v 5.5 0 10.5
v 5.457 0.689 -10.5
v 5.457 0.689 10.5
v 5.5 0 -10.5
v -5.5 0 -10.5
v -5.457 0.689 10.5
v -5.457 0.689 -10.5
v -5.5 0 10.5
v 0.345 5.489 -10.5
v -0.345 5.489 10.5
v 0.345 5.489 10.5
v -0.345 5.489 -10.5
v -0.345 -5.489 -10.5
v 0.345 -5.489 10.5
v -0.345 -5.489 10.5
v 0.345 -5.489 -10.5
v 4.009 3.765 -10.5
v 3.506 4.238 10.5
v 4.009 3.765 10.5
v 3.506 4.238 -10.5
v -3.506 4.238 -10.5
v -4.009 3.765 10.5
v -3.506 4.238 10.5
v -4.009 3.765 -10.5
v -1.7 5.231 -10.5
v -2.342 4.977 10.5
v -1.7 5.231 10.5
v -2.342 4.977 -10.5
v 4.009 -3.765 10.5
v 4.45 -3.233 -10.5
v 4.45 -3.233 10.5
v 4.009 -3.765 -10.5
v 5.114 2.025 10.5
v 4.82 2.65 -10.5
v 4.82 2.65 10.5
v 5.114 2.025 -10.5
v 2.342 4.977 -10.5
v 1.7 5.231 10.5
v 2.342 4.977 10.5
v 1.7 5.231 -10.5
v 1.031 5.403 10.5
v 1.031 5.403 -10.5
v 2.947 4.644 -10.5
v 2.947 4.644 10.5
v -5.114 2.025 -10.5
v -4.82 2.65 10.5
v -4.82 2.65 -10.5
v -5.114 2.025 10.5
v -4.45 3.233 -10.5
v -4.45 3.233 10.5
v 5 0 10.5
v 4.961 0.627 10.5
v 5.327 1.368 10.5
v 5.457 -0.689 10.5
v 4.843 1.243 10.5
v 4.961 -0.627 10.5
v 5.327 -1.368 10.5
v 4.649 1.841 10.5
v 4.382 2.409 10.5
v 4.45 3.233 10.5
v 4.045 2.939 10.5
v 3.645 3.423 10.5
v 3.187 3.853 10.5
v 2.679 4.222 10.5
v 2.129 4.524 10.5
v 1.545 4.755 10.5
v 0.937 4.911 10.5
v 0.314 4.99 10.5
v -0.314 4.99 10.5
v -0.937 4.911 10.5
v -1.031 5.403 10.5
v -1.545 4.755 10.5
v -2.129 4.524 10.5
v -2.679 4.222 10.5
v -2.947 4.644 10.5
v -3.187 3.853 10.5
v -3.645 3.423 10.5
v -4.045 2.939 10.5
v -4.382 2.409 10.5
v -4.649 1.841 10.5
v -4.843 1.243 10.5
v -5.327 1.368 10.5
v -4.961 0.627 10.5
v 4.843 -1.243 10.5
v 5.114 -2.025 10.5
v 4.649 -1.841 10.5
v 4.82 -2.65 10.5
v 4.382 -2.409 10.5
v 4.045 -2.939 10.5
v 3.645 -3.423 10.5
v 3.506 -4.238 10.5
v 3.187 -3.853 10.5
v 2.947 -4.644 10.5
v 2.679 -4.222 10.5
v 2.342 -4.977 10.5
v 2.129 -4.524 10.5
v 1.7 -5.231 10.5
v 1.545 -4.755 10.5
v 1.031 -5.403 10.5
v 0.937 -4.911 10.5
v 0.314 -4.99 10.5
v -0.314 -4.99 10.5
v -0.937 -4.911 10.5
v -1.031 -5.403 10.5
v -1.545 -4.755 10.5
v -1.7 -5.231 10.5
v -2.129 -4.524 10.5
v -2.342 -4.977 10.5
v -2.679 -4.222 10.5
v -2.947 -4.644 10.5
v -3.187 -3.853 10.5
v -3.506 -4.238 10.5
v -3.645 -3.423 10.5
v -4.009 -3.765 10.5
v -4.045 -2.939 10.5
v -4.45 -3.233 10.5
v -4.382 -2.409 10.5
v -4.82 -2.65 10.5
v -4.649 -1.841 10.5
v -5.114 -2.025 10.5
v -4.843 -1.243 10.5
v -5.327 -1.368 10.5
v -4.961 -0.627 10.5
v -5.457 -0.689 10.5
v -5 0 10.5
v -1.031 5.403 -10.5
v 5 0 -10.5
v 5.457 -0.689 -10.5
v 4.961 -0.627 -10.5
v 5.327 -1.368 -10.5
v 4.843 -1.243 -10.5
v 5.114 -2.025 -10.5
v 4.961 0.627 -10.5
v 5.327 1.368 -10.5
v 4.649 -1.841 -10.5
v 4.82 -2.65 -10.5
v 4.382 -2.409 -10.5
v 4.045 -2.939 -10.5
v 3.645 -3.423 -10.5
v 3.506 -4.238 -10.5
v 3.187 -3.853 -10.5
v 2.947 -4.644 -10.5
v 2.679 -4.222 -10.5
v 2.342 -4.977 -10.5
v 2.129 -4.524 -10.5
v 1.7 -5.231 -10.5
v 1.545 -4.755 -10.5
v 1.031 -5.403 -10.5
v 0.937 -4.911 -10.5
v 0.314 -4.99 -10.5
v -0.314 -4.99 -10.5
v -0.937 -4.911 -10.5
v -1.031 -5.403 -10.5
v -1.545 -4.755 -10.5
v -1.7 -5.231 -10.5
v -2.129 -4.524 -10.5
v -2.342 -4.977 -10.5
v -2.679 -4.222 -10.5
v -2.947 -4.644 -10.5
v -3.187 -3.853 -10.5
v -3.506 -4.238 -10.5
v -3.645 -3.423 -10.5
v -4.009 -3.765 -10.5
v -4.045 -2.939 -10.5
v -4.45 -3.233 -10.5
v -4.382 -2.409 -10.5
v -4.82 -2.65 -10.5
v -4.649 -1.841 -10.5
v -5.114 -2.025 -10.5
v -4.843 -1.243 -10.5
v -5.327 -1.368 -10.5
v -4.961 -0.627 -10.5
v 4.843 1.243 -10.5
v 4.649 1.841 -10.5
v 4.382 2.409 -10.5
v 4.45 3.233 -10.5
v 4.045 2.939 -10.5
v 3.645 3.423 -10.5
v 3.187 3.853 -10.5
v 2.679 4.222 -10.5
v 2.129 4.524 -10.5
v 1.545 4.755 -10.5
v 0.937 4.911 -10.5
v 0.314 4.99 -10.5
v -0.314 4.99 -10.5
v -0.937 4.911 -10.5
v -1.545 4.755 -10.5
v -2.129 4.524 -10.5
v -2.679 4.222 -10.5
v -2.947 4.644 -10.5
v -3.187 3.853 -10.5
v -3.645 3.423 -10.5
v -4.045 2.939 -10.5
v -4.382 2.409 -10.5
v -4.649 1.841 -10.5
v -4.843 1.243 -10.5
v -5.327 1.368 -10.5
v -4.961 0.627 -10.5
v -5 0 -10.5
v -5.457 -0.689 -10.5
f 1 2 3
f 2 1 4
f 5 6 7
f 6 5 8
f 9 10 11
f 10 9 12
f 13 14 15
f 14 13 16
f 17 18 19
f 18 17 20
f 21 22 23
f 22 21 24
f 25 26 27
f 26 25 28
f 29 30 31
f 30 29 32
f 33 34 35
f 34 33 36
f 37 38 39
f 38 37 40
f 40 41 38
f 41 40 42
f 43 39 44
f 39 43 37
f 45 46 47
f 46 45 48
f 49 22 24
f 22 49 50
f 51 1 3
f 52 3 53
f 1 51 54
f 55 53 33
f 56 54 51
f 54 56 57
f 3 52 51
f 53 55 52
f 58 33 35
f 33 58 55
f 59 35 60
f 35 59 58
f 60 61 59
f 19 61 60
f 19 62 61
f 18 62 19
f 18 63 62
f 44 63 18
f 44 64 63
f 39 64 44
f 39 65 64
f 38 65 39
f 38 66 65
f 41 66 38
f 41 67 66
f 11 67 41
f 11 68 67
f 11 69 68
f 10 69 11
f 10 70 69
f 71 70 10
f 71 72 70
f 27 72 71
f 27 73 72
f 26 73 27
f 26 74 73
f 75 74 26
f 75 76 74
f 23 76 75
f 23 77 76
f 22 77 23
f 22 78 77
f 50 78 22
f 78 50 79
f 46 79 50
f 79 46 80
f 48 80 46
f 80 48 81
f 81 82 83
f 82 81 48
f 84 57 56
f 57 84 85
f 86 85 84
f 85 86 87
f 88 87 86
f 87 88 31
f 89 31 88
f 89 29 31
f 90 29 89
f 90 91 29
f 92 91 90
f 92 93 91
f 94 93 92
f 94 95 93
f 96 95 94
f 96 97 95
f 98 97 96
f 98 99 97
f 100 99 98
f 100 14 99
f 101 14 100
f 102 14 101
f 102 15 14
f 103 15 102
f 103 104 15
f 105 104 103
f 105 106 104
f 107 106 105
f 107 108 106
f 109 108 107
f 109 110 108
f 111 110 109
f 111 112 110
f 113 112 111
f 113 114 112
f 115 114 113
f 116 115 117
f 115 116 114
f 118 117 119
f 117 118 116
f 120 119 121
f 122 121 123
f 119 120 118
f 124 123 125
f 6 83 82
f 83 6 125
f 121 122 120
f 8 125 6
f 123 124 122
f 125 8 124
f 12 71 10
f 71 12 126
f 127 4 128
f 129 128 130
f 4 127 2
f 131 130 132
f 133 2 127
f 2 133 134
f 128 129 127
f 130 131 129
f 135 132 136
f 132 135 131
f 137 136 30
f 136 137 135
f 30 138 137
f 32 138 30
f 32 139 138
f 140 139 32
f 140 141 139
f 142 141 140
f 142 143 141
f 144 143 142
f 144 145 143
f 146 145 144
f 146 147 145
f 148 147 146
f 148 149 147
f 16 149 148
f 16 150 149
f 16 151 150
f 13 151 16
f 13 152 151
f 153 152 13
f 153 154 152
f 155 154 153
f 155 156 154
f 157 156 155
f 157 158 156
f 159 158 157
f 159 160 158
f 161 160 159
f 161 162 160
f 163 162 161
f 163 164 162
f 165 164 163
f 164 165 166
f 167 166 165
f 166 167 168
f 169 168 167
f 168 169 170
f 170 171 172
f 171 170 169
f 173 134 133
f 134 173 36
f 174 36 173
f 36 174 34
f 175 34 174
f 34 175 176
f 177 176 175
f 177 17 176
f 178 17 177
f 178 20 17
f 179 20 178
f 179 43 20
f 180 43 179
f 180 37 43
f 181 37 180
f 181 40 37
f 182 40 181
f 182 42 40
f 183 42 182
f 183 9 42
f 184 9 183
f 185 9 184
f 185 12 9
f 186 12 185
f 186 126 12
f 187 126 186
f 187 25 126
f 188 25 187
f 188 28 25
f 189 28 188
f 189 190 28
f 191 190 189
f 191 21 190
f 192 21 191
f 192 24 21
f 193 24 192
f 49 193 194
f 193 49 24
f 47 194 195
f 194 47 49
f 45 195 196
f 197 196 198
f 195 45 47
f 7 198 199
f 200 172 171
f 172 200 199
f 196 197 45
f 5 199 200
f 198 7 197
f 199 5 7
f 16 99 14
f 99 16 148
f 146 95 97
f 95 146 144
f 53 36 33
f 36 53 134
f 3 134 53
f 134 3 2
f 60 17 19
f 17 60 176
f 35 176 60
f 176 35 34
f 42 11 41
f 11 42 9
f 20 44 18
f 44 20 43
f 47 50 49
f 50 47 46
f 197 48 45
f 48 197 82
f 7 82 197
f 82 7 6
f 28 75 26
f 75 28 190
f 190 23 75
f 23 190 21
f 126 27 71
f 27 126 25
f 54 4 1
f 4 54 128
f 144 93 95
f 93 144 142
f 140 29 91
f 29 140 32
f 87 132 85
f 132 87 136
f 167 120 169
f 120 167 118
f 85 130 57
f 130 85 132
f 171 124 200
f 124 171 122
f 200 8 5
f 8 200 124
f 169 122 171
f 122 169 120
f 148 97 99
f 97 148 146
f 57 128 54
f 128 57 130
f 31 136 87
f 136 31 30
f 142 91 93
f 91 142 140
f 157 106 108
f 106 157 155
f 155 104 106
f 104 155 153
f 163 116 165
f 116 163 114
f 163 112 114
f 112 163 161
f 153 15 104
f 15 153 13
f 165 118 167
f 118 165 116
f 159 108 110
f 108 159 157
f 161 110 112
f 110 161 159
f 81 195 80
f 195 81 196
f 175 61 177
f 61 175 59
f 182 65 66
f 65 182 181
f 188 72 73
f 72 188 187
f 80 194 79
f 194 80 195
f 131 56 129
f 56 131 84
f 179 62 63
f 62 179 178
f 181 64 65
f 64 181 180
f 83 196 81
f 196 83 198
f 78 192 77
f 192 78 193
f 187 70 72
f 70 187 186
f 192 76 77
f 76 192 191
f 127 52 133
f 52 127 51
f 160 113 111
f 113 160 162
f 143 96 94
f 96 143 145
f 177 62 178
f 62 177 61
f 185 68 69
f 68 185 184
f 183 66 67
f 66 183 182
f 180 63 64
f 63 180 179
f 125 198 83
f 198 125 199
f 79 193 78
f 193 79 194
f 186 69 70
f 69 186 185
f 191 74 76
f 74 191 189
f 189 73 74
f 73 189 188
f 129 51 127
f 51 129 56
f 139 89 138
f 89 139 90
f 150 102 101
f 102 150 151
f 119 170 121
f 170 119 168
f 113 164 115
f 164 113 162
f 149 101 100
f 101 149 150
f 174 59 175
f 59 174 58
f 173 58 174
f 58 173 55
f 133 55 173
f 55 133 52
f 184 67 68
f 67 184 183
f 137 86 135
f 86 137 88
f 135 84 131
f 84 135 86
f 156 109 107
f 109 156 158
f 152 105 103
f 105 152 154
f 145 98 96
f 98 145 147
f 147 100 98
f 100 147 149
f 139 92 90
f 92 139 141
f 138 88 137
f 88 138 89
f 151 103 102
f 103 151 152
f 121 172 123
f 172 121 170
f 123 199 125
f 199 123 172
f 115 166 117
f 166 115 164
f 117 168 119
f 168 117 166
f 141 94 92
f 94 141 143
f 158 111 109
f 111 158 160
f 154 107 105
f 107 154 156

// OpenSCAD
$fn = 50;


difference() {
	union() {
		translate(v = [0, 0, -10.5000000000]) {
			cylinder(h = 21, r = 5.5000000000);
		}
	}
	union() {
		translate(v = [0, 0, -100.0000000000]) {
			cylinder(h = 200, r = 5.0000000000);
		}
	}
}
